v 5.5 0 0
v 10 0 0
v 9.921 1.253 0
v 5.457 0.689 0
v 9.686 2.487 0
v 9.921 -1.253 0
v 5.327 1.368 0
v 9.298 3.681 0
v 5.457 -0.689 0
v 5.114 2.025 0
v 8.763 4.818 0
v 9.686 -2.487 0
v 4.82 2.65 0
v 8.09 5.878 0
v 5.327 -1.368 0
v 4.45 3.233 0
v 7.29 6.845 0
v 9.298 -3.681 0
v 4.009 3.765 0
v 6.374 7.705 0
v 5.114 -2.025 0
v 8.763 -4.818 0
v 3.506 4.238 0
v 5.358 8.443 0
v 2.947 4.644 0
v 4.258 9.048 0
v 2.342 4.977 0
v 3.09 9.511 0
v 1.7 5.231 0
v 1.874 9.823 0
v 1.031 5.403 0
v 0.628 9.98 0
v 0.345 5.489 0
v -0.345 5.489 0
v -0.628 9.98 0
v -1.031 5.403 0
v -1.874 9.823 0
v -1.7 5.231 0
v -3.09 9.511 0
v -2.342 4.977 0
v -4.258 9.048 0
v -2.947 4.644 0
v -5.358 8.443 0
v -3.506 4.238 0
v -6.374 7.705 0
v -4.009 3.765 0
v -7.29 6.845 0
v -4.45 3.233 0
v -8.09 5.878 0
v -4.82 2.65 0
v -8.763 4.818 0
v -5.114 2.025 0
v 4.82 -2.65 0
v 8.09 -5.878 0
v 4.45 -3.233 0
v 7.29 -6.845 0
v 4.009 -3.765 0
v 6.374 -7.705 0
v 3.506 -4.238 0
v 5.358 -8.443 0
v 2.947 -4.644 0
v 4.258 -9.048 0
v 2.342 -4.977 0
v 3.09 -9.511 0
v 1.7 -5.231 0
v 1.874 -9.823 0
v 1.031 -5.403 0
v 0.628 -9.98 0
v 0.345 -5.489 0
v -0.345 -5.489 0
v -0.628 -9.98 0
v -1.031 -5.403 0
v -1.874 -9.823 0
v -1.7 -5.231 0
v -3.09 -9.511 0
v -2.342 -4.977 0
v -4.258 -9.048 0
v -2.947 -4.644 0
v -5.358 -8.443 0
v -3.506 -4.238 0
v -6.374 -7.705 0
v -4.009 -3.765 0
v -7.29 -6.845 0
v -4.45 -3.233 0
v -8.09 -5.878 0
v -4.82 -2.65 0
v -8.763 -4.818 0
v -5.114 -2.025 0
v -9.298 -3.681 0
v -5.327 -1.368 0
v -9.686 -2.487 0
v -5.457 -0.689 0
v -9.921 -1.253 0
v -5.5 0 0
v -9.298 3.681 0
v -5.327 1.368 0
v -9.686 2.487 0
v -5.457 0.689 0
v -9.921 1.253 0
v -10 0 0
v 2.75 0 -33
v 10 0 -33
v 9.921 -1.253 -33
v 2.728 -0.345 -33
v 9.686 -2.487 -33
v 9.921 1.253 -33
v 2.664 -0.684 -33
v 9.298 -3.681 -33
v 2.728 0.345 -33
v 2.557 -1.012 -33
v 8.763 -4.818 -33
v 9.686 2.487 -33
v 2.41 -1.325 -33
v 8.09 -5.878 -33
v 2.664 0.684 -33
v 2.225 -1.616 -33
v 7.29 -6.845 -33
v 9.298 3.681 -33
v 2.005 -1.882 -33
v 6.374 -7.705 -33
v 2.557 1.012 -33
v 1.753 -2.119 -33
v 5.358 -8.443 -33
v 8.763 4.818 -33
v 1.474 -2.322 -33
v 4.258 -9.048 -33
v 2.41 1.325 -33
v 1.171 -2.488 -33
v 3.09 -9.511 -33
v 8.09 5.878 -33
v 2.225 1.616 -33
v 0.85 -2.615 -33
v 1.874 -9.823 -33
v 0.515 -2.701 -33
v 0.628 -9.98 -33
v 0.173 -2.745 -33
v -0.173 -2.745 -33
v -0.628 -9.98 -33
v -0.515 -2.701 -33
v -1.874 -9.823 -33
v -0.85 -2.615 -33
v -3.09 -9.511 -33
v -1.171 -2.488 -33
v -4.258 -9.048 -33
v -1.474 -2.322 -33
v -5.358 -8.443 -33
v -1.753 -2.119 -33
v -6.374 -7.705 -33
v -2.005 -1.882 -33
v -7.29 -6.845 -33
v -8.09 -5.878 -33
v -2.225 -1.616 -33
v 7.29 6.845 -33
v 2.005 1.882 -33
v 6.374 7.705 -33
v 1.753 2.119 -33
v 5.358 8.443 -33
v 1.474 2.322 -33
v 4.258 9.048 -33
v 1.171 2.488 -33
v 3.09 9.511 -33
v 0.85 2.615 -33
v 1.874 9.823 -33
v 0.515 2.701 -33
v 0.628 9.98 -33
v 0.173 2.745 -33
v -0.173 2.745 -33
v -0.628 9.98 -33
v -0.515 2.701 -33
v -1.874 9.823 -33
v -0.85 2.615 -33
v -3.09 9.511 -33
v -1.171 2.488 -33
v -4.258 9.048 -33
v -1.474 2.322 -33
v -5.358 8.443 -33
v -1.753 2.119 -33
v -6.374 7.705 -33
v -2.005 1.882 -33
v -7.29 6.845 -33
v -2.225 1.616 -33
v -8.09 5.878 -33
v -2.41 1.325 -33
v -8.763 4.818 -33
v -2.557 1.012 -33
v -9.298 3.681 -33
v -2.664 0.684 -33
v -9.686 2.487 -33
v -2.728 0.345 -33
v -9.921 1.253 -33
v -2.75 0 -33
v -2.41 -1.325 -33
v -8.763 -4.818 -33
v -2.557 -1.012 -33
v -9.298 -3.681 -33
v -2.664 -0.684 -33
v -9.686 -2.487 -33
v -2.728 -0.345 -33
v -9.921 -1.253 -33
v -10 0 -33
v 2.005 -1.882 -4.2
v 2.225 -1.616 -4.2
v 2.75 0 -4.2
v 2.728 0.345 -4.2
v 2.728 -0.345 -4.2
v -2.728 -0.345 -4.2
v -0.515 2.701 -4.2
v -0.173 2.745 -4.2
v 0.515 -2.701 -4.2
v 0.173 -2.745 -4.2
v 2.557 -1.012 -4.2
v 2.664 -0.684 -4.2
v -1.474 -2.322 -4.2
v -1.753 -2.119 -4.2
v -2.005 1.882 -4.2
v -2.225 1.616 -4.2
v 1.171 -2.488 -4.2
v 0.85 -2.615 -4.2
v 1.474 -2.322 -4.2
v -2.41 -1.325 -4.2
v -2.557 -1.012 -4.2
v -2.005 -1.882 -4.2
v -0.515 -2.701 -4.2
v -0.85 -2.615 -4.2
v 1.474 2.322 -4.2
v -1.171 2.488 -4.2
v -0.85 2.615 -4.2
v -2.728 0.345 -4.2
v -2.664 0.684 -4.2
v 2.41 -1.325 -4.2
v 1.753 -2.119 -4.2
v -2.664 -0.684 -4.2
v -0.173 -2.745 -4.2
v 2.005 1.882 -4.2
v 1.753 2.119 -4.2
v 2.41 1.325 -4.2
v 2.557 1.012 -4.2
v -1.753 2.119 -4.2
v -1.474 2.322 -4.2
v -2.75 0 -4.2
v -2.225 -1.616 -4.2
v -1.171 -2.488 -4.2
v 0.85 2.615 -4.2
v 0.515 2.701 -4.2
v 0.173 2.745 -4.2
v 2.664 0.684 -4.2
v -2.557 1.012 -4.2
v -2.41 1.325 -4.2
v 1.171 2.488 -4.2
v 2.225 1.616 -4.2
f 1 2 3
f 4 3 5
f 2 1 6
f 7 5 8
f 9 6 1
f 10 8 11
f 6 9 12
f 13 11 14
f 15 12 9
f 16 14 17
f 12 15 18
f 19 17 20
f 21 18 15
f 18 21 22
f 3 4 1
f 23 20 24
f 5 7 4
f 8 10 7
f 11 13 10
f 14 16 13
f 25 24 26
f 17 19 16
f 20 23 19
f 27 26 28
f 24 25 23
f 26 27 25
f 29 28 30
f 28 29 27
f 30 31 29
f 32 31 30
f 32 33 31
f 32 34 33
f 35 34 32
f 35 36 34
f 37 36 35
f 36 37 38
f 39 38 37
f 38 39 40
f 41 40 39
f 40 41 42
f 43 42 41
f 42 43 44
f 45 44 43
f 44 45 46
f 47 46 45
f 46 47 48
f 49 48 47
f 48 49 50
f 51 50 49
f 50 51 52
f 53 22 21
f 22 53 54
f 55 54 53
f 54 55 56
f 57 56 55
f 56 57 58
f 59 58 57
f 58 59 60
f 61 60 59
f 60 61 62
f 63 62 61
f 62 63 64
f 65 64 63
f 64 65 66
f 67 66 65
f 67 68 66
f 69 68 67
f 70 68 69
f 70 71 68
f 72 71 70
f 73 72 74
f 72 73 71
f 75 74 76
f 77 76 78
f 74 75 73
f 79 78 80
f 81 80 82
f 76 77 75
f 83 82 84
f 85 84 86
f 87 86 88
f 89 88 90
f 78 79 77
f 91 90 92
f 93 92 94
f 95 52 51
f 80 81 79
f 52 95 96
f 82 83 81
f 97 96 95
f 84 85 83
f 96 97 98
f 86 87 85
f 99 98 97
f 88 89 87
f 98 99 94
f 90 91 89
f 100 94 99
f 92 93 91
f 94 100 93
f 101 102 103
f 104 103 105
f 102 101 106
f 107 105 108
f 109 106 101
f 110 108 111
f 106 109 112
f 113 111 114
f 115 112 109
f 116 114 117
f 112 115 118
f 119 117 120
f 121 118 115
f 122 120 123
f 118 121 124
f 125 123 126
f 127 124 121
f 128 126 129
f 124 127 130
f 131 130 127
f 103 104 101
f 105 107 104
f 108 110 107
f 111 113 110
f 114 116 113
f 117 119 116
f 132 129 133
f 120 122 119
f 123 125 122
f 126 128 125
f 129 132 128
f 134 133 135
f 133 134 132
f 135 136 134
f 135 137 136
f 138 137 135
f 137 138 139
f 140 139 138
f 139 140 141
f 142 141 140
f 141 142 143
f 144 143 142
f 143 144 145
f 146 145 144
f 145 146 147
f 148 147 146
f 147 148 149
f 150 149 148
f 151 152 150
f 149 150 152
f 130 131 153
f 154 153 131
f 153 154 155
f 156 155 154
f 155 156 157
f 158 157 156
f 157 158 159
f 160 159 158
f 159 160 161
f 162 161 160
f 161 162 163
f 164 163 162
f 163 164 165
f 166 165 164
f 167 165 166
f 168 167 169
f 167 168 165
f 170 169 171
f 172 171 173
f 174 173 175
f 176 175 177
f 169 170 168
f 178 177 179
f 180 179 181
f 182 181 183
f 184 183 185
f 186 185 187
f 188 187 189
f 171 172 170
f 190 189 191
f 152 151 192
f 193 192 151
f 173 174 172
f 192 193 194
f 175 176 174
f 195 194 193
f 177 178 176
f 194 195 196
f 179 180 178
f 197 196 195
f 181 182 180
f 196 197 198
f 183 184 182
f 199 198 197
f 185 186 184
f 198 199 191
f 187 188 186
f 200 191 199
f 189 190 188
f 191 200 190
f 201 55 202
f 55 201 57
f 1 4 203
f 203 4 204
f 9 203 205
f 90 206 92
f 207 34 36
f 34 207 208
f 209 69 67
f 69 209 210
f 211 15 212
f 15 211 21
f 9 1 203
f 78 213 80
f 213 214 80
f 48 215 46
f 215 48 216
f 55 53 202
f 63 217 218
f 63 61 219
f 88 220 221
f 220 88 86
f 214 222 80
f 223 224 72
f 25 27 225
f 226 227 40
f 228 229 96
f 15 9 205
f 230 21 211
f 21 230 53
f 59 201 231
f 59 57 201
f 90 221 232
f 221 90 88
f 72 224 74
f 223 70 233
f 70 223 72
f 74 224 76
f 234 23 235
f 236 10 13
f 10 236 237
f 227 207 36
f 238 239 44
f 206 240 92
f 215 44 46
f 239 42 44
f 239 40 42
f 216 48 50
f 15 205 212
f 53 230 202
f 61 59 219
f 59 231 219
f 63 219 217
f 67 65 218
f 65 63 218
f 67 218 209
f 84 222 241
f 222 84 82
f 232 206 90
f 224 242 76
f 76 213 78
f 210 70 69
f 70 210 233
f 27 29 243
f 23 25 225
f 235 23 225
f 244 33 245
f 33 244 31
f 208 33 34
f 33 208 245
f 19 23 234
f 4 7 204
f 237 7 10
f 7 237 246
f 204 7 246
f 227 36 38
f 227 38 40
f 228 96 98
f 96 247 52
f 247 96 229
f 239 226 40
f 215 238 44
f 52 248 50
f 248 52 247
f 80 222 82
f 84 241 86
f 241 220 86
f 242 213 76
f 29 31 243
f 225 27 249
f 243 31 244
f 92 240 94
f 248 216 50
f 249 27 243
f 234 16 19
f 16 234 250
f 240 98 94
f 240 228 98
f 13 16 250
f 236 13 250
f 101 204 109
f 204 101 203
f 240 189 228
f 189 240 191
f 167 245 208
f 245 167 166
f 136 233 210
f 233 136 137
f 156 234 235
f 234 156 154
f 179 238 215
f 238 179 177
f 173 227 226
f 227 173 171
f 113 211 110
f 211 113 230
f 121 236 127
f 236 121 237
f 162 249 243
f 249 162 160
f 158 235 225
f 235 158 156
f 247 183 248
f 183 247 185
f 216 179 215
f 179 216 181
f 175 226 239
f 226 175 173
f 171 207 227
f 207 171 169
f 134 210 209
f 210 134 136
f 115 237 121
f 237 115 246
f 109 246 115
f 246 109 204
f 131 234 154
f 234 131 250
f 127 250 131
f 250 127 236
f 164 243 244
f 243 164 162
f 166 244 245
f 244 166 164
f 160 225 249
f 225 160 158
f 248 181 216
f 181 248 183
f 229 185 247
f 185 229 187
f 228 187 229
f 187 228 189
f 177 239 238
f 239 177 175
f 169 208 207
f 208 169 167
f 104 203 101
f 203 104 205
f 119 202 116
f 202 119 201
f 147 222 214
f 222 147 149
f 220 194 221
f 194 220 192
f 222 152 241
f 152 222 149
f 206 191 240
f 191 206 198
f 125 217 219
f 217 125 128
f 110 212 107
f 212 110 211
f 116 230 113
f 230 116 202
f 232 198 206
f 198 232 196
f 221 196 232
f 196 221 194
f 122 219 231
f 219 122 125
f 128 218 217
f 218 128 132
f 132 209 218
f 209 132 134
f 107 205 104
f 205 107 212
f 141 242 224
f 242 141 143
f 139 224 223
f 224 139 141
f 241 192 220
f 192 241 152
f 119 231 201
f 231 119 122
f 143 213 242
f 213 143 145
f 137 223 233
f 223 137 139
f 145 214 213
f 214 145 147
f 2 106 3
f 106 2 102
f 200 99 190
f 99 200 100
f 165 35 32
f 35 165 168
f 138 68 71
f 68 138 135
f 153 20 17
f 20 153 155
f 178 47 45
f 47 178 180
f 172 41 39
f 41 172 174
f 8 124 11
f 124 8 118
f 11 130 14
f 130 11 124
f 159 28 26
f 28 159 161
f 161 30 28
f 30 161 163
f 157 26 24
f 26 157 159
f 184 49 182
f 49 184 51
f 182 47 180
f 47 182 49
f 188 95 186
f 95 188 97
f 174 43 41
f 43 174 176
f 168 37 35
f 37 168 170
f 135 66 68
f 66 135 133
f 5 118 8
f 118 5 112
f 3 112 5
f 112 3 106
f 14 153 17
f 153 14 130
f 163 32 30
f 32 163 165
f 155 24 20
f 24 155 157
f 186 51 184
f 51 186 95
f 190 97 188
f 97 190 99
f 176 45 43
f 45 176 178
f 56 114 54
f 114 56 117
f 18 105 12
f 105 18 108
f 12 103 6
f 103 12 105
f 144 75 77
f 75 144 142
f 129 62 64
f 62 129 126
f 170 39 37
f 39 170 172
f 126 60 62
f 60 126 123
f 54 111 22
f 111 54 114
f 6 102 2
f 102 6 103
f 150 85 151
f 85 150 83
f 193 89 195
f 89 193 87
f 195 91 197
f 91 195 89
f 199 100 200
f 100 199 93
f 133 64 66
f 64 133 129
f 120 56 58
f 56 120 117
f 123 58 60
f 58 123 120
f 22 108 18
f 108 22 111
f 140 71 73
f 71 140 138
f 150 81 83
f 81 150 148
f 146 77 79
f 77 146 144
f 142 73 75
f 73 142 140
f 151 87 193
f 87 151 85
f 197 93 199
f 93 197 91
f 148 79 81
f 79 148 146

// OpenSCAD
$fn = 50;


difference() {
	union() {
		translate(v = [0, 0, -33.0000000000]) {
			cylinder(h = 33, r = 10.0000000000);
		}
		cylinder(h = 0, r = 16.0000000000);
	}
	union() {
		translate(v = [0, 0, 0]) {
			rotate(a = [0, 0, 0]) {
				difference() {
					union() {
						#translate(v = [0, 0, -33.0000000000]) {
							cylinder(h = 33, r = 2.2500000000);
						}
						#translate(v = [0, 0, -4.2000000000]) {
							cylinder(h = 4.2000000000, r1 = 2.7500000000, r2 = 5.5000000000);
						}
						#translate(v = [0, 0, -33.0000000000]) {
							cylinder(h = 33, r = 2.7500000000);
						}
						#translate(v = [0, 0, -33.0000000000]) {
							cylinder(h = 33, r = 2.2500000000);
						}
					}
					union();
				}
			}
		}
	}
}
